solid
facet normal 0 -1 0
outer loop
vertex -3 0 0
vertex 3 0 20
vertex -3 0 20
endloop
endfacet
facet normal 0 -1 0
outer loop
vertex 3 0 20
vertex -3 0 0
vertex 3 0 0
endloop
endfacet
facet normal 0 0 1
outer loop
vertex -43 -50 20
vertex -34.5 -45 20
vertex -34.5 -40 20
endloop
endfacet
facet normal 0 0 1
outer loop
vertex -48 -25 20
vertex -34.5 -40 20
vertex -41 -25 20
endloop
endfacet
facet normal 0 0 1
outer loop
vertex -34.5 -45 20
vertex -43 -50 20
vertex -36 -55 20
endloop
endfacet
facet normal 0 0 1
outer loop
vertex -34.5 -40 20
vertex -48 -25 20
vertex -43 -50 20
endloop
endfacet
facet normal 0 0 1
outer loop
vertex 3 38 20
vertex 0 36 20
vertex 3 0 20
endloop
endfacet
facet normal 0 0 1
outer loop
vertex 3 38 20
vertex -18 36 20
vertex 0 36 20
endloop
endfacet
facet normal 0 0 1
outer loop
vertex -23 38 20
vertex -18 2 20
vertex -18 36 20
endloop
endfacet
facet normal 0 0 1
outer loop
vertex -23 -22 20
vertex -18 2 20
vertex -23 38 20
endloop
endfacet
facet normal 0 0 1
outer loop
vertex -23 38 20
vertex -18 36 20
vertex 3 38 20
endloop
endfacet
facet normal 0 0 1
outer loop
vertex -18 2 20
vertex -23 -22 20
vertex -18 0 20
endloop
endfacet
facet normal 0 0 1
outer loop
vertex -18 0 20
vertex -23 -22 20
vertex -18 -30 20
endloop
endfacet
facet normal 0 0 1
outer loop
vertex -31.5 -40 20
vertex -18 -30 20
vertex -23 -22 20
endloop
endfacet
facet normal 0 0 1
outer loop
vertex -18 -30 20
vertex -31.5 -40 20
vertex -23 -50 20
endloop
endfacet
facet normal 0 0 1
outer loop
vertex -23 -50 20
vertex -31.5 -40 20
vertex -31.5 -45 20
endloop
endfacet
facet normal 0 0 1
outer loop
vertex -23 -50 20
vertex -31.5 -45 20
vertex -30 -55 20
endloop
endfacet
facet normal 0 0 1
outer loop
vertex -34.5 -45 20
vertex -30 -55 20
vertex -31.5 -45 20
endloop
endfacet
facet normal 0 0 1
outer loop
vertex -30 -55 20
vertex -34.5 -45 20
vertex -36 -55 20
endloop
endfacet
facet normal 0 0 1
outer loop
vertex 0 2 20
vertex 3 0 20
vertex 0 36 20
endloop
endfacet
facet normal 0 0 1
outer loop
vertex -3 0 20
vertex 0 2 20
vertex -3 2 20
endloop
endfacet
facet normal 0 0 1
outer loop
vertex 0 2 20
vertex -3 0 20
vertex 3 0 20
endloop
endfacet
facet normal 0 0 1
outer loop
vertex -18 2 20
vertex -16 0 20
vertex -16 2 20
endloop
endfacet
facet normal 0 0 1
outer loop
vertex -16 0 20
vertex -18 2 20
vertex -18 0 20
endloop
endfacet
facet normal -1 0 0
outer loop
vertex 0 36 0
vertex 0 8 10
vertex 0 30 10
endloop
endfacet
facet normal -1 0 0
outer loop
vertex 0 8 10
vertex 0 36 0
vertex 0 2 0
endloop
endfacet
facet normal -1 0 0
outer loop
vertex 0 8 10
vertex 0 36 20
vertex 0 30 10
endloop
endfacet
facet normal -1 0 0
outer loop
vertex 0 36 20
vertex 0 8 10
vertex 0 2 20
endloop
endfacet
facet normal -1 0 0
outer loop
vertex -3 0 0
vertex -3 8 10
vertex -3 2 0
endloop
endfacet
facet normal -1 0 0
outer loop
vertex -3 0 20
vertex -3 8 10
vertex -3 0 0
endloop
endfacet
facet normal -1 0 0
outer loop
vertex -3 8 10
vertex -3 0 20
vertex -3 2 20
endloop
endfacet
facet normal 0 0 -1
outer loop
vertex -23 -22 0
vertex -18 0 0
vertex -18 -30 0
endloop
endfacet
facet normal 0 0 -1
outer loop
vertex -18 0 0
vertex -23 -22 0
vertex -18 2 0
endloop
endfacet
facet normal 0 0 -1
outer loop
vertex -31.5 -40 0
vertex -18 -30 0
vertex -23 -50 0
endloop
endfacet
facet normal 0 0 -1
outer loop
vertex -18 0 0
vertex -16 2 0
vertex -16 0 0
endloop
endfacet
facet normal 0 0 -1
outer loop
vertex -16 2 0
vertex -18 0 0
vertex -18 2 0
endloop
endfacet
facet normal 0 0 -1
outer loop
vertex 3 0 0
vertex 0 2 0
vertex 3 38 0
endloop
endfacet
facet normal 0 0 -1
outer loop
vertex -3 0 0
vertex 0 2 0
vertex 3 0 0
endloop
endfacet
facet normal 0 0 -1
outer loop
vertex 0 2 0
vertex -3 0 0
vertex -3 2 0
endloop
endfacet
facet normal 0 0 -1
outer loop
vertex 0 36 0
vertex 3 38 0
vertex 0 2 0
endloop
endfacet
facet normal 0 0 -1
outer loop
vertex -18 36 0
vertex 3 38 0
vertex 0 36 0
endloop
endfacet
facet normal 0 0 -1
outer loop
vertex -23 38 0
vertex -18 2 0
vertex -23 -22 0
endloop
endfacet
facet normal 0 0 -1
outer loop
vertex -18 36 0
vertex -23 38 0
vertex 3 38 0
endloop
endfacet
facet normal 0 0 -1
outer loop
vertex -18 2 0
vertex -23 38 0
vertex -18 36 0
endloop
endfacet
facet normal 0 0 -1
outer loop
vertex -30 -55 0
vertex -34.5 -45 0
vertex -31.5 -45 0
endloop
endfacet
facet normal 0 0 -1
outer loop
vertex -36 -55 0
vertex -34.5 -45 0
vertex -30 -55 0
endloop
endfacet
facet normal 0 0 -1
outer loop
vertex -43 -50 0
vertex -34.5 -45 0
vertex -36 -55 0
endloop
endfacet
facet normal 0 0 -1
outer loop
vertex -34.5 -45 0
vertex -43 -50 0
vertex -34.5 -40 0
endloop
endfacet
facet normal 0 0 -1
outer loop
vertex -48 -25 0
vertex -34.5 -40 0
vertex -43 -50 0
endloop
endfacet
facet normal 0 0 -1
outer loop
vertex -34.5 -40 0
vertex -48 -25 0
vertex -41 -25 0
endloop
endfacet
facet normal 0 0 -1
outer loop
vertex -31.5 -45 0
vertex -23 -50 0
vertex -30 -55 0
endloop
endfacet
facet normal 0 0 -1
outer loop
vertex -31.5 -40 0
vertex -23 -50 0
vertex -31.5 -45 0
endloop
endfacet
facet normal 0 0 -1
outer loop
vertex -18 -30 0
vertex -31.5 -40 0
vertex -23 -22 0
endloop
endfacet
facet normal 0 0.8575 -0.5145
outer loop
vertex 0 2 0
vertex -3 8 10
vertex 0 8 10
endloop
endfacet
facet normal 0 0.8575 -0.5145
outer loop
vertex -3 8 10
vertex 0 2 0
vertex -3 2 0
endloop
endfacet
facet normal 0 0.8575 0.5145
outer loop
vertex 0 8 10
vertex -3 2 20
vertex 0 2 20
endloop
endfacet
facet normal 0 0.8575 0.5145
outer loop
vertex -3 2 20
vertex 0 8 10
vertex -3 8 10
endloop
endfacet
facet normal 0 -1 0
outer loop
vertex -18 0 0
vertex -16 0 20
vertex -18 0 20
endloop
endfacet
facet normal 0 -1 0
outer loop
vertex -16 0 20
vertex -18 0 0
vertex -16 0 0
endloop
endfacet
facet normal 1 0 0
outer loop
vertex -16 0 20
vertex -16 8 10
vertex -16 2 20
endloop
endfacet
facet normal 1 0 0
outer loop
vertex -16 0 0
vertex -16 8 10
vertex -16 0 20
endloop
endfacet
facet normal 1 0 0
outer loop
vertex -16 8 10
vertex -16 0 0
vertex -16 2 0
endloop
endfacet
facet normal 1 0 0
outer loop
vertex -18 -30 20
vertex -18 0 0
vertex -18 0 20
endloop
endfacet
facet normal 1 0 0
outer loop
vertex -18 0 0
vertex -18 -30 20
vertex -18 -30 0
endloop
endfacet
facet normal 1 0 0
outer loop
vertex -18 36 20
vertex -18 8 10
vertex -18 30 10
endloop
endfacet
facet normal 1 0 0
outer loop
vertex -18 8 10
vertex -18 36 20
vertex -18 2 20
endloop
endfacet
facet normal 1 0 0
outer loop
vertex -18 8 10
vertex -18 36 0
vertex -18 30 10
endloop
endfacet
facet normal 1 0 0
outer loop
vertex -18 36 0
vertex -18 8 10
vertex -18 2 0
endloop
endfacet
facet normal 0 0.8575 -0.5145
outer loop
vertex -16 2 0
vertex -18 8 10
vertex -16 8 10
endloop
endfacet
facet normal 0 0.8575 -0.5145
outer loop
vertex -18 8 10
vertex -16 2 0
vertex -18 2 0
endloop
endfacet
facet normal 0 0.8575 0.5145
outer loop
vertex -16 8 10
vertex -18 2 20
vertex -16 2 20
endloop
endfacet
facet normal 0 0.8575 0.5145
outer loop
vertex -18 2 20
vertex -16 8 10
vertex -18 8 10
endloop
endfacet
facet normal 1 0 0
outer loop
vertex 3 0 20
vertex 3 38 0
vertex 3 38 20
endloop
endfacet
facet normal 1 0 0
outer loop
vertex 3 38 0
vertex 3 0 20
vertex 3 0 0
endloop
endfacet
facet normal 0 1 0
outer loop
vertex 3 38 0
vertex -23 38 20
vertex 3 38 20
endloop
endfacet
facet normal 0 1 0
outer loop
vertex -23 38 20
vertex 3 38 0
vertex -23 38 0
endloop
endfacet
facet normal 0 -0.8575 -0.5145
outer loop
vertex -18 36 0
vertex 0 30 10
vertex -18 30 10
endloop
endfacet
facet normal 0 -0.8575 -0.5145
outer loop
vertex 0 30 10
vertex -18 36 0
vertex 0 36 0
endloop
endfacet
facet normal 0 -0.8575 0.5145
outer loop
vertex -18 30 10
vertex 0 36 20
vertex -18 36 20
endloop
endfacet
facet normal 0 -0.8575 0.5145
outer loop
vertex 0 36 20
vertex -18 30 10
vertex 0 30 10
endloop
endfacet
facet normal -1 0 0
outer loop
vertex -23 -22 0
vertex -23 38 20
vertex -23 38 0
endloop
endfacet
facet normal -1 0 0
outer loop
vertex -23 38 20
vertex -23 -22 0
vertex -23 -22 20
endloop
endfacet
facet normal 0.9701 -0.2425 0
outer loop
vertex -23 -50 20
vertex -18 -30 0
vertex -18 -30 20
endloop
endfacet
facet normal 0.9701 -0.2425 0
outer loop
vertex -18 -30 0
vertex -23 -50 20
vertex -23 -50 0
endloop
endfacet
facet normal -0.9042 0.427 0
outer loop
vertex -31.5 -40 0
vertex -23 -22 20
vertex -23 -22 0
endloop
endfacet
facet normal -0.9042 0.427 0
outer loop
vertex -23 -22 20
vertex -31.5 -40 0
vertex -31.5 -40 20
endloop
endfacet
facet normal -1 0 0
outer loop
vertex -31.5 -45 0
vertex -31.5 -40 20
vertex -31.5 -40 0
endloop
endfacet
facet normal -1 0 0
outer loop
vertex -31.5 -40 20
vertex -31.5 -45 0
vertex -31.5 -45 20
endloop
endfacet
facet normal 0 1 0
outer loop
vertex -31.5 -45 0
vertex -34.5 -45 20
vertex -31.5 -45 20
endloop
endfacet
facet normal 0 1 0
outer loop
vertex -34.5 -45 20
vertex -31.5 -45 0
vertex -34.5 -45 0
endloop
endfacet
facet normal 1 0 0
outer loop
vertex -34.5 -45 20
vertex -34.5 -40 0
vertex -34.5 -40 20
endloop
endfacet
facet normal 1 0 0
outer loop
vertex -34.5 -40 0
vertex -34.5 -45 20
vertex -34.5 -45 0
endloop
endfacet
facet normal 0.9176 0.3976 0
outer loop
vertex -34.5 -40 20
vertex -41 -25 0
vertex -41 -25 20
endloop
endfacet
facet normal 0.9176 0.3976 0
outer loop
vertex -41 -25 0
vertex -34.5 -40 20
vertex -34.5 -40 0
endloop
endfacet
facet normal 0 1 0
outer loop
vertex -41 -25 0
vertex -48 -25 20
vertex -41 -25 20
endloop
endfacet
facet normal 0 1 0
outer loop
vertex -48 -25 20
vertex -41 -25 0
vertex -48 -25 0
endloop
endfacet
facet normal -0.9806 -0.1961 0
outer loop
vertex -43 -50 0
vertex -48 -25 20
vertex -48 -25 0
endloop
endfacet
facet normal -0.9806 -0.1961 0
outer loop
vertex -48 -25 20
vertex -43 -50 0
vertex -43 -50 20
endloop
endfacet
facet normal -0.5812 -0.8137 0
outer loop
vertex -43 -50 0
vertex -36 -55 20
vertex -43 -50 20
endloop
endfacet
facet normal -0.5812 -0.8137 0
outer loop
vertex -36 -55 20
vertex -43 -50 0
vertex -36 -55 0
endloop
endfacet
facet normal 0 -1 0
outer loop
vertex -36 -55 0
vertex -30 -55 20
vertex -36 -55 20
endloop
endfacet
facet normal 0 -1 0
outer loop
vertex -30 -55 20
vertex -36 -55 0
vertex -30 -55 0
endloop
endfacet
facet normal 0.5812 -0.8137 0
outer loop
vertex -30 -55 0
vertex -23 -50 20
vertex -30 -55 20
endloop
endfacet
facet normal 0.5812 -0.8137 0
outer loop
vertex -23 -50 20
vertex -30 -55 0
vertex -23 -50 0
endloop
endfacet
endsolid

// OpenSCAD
h = 20;
l1 = 22+2*8;
l2 = 30;
w = 18;

module beam(h) {
    rotate([0,-90,0]) linear_extrude(h) polygon([
        [0, 0],
        [20, 0],
        [20, 2],
        [10, 8],
        [0, 2],
        [0, 0],
    ]);
}
module hook(h) {
    linear_extrude(h) polygon([
        [-5, 5],
        [-12, 0],
        [-18, 0],
        [-25, 5],
        [-30, 30],
        [-23, 30],
        [-16.5, 15],
        [-16.5, 10],
        [-13.5, 10],
        [-13.5, 15],
        [-5, 33],
        [0, 30],
        [0, 25]
    ]);
}
    
module body() {
    beam(3);
    translate([-w+2, 0, 0]) beam(2);
    cube([3, l1, h]);
    translate([-w, l1, 0]) rotate([0,0,180]) beam(18);
    translate([-w-5, -l2, 0]) cube([5, l1+l2, h]);
    translate([-w, -l2-25]) hook(20);
}

body();
